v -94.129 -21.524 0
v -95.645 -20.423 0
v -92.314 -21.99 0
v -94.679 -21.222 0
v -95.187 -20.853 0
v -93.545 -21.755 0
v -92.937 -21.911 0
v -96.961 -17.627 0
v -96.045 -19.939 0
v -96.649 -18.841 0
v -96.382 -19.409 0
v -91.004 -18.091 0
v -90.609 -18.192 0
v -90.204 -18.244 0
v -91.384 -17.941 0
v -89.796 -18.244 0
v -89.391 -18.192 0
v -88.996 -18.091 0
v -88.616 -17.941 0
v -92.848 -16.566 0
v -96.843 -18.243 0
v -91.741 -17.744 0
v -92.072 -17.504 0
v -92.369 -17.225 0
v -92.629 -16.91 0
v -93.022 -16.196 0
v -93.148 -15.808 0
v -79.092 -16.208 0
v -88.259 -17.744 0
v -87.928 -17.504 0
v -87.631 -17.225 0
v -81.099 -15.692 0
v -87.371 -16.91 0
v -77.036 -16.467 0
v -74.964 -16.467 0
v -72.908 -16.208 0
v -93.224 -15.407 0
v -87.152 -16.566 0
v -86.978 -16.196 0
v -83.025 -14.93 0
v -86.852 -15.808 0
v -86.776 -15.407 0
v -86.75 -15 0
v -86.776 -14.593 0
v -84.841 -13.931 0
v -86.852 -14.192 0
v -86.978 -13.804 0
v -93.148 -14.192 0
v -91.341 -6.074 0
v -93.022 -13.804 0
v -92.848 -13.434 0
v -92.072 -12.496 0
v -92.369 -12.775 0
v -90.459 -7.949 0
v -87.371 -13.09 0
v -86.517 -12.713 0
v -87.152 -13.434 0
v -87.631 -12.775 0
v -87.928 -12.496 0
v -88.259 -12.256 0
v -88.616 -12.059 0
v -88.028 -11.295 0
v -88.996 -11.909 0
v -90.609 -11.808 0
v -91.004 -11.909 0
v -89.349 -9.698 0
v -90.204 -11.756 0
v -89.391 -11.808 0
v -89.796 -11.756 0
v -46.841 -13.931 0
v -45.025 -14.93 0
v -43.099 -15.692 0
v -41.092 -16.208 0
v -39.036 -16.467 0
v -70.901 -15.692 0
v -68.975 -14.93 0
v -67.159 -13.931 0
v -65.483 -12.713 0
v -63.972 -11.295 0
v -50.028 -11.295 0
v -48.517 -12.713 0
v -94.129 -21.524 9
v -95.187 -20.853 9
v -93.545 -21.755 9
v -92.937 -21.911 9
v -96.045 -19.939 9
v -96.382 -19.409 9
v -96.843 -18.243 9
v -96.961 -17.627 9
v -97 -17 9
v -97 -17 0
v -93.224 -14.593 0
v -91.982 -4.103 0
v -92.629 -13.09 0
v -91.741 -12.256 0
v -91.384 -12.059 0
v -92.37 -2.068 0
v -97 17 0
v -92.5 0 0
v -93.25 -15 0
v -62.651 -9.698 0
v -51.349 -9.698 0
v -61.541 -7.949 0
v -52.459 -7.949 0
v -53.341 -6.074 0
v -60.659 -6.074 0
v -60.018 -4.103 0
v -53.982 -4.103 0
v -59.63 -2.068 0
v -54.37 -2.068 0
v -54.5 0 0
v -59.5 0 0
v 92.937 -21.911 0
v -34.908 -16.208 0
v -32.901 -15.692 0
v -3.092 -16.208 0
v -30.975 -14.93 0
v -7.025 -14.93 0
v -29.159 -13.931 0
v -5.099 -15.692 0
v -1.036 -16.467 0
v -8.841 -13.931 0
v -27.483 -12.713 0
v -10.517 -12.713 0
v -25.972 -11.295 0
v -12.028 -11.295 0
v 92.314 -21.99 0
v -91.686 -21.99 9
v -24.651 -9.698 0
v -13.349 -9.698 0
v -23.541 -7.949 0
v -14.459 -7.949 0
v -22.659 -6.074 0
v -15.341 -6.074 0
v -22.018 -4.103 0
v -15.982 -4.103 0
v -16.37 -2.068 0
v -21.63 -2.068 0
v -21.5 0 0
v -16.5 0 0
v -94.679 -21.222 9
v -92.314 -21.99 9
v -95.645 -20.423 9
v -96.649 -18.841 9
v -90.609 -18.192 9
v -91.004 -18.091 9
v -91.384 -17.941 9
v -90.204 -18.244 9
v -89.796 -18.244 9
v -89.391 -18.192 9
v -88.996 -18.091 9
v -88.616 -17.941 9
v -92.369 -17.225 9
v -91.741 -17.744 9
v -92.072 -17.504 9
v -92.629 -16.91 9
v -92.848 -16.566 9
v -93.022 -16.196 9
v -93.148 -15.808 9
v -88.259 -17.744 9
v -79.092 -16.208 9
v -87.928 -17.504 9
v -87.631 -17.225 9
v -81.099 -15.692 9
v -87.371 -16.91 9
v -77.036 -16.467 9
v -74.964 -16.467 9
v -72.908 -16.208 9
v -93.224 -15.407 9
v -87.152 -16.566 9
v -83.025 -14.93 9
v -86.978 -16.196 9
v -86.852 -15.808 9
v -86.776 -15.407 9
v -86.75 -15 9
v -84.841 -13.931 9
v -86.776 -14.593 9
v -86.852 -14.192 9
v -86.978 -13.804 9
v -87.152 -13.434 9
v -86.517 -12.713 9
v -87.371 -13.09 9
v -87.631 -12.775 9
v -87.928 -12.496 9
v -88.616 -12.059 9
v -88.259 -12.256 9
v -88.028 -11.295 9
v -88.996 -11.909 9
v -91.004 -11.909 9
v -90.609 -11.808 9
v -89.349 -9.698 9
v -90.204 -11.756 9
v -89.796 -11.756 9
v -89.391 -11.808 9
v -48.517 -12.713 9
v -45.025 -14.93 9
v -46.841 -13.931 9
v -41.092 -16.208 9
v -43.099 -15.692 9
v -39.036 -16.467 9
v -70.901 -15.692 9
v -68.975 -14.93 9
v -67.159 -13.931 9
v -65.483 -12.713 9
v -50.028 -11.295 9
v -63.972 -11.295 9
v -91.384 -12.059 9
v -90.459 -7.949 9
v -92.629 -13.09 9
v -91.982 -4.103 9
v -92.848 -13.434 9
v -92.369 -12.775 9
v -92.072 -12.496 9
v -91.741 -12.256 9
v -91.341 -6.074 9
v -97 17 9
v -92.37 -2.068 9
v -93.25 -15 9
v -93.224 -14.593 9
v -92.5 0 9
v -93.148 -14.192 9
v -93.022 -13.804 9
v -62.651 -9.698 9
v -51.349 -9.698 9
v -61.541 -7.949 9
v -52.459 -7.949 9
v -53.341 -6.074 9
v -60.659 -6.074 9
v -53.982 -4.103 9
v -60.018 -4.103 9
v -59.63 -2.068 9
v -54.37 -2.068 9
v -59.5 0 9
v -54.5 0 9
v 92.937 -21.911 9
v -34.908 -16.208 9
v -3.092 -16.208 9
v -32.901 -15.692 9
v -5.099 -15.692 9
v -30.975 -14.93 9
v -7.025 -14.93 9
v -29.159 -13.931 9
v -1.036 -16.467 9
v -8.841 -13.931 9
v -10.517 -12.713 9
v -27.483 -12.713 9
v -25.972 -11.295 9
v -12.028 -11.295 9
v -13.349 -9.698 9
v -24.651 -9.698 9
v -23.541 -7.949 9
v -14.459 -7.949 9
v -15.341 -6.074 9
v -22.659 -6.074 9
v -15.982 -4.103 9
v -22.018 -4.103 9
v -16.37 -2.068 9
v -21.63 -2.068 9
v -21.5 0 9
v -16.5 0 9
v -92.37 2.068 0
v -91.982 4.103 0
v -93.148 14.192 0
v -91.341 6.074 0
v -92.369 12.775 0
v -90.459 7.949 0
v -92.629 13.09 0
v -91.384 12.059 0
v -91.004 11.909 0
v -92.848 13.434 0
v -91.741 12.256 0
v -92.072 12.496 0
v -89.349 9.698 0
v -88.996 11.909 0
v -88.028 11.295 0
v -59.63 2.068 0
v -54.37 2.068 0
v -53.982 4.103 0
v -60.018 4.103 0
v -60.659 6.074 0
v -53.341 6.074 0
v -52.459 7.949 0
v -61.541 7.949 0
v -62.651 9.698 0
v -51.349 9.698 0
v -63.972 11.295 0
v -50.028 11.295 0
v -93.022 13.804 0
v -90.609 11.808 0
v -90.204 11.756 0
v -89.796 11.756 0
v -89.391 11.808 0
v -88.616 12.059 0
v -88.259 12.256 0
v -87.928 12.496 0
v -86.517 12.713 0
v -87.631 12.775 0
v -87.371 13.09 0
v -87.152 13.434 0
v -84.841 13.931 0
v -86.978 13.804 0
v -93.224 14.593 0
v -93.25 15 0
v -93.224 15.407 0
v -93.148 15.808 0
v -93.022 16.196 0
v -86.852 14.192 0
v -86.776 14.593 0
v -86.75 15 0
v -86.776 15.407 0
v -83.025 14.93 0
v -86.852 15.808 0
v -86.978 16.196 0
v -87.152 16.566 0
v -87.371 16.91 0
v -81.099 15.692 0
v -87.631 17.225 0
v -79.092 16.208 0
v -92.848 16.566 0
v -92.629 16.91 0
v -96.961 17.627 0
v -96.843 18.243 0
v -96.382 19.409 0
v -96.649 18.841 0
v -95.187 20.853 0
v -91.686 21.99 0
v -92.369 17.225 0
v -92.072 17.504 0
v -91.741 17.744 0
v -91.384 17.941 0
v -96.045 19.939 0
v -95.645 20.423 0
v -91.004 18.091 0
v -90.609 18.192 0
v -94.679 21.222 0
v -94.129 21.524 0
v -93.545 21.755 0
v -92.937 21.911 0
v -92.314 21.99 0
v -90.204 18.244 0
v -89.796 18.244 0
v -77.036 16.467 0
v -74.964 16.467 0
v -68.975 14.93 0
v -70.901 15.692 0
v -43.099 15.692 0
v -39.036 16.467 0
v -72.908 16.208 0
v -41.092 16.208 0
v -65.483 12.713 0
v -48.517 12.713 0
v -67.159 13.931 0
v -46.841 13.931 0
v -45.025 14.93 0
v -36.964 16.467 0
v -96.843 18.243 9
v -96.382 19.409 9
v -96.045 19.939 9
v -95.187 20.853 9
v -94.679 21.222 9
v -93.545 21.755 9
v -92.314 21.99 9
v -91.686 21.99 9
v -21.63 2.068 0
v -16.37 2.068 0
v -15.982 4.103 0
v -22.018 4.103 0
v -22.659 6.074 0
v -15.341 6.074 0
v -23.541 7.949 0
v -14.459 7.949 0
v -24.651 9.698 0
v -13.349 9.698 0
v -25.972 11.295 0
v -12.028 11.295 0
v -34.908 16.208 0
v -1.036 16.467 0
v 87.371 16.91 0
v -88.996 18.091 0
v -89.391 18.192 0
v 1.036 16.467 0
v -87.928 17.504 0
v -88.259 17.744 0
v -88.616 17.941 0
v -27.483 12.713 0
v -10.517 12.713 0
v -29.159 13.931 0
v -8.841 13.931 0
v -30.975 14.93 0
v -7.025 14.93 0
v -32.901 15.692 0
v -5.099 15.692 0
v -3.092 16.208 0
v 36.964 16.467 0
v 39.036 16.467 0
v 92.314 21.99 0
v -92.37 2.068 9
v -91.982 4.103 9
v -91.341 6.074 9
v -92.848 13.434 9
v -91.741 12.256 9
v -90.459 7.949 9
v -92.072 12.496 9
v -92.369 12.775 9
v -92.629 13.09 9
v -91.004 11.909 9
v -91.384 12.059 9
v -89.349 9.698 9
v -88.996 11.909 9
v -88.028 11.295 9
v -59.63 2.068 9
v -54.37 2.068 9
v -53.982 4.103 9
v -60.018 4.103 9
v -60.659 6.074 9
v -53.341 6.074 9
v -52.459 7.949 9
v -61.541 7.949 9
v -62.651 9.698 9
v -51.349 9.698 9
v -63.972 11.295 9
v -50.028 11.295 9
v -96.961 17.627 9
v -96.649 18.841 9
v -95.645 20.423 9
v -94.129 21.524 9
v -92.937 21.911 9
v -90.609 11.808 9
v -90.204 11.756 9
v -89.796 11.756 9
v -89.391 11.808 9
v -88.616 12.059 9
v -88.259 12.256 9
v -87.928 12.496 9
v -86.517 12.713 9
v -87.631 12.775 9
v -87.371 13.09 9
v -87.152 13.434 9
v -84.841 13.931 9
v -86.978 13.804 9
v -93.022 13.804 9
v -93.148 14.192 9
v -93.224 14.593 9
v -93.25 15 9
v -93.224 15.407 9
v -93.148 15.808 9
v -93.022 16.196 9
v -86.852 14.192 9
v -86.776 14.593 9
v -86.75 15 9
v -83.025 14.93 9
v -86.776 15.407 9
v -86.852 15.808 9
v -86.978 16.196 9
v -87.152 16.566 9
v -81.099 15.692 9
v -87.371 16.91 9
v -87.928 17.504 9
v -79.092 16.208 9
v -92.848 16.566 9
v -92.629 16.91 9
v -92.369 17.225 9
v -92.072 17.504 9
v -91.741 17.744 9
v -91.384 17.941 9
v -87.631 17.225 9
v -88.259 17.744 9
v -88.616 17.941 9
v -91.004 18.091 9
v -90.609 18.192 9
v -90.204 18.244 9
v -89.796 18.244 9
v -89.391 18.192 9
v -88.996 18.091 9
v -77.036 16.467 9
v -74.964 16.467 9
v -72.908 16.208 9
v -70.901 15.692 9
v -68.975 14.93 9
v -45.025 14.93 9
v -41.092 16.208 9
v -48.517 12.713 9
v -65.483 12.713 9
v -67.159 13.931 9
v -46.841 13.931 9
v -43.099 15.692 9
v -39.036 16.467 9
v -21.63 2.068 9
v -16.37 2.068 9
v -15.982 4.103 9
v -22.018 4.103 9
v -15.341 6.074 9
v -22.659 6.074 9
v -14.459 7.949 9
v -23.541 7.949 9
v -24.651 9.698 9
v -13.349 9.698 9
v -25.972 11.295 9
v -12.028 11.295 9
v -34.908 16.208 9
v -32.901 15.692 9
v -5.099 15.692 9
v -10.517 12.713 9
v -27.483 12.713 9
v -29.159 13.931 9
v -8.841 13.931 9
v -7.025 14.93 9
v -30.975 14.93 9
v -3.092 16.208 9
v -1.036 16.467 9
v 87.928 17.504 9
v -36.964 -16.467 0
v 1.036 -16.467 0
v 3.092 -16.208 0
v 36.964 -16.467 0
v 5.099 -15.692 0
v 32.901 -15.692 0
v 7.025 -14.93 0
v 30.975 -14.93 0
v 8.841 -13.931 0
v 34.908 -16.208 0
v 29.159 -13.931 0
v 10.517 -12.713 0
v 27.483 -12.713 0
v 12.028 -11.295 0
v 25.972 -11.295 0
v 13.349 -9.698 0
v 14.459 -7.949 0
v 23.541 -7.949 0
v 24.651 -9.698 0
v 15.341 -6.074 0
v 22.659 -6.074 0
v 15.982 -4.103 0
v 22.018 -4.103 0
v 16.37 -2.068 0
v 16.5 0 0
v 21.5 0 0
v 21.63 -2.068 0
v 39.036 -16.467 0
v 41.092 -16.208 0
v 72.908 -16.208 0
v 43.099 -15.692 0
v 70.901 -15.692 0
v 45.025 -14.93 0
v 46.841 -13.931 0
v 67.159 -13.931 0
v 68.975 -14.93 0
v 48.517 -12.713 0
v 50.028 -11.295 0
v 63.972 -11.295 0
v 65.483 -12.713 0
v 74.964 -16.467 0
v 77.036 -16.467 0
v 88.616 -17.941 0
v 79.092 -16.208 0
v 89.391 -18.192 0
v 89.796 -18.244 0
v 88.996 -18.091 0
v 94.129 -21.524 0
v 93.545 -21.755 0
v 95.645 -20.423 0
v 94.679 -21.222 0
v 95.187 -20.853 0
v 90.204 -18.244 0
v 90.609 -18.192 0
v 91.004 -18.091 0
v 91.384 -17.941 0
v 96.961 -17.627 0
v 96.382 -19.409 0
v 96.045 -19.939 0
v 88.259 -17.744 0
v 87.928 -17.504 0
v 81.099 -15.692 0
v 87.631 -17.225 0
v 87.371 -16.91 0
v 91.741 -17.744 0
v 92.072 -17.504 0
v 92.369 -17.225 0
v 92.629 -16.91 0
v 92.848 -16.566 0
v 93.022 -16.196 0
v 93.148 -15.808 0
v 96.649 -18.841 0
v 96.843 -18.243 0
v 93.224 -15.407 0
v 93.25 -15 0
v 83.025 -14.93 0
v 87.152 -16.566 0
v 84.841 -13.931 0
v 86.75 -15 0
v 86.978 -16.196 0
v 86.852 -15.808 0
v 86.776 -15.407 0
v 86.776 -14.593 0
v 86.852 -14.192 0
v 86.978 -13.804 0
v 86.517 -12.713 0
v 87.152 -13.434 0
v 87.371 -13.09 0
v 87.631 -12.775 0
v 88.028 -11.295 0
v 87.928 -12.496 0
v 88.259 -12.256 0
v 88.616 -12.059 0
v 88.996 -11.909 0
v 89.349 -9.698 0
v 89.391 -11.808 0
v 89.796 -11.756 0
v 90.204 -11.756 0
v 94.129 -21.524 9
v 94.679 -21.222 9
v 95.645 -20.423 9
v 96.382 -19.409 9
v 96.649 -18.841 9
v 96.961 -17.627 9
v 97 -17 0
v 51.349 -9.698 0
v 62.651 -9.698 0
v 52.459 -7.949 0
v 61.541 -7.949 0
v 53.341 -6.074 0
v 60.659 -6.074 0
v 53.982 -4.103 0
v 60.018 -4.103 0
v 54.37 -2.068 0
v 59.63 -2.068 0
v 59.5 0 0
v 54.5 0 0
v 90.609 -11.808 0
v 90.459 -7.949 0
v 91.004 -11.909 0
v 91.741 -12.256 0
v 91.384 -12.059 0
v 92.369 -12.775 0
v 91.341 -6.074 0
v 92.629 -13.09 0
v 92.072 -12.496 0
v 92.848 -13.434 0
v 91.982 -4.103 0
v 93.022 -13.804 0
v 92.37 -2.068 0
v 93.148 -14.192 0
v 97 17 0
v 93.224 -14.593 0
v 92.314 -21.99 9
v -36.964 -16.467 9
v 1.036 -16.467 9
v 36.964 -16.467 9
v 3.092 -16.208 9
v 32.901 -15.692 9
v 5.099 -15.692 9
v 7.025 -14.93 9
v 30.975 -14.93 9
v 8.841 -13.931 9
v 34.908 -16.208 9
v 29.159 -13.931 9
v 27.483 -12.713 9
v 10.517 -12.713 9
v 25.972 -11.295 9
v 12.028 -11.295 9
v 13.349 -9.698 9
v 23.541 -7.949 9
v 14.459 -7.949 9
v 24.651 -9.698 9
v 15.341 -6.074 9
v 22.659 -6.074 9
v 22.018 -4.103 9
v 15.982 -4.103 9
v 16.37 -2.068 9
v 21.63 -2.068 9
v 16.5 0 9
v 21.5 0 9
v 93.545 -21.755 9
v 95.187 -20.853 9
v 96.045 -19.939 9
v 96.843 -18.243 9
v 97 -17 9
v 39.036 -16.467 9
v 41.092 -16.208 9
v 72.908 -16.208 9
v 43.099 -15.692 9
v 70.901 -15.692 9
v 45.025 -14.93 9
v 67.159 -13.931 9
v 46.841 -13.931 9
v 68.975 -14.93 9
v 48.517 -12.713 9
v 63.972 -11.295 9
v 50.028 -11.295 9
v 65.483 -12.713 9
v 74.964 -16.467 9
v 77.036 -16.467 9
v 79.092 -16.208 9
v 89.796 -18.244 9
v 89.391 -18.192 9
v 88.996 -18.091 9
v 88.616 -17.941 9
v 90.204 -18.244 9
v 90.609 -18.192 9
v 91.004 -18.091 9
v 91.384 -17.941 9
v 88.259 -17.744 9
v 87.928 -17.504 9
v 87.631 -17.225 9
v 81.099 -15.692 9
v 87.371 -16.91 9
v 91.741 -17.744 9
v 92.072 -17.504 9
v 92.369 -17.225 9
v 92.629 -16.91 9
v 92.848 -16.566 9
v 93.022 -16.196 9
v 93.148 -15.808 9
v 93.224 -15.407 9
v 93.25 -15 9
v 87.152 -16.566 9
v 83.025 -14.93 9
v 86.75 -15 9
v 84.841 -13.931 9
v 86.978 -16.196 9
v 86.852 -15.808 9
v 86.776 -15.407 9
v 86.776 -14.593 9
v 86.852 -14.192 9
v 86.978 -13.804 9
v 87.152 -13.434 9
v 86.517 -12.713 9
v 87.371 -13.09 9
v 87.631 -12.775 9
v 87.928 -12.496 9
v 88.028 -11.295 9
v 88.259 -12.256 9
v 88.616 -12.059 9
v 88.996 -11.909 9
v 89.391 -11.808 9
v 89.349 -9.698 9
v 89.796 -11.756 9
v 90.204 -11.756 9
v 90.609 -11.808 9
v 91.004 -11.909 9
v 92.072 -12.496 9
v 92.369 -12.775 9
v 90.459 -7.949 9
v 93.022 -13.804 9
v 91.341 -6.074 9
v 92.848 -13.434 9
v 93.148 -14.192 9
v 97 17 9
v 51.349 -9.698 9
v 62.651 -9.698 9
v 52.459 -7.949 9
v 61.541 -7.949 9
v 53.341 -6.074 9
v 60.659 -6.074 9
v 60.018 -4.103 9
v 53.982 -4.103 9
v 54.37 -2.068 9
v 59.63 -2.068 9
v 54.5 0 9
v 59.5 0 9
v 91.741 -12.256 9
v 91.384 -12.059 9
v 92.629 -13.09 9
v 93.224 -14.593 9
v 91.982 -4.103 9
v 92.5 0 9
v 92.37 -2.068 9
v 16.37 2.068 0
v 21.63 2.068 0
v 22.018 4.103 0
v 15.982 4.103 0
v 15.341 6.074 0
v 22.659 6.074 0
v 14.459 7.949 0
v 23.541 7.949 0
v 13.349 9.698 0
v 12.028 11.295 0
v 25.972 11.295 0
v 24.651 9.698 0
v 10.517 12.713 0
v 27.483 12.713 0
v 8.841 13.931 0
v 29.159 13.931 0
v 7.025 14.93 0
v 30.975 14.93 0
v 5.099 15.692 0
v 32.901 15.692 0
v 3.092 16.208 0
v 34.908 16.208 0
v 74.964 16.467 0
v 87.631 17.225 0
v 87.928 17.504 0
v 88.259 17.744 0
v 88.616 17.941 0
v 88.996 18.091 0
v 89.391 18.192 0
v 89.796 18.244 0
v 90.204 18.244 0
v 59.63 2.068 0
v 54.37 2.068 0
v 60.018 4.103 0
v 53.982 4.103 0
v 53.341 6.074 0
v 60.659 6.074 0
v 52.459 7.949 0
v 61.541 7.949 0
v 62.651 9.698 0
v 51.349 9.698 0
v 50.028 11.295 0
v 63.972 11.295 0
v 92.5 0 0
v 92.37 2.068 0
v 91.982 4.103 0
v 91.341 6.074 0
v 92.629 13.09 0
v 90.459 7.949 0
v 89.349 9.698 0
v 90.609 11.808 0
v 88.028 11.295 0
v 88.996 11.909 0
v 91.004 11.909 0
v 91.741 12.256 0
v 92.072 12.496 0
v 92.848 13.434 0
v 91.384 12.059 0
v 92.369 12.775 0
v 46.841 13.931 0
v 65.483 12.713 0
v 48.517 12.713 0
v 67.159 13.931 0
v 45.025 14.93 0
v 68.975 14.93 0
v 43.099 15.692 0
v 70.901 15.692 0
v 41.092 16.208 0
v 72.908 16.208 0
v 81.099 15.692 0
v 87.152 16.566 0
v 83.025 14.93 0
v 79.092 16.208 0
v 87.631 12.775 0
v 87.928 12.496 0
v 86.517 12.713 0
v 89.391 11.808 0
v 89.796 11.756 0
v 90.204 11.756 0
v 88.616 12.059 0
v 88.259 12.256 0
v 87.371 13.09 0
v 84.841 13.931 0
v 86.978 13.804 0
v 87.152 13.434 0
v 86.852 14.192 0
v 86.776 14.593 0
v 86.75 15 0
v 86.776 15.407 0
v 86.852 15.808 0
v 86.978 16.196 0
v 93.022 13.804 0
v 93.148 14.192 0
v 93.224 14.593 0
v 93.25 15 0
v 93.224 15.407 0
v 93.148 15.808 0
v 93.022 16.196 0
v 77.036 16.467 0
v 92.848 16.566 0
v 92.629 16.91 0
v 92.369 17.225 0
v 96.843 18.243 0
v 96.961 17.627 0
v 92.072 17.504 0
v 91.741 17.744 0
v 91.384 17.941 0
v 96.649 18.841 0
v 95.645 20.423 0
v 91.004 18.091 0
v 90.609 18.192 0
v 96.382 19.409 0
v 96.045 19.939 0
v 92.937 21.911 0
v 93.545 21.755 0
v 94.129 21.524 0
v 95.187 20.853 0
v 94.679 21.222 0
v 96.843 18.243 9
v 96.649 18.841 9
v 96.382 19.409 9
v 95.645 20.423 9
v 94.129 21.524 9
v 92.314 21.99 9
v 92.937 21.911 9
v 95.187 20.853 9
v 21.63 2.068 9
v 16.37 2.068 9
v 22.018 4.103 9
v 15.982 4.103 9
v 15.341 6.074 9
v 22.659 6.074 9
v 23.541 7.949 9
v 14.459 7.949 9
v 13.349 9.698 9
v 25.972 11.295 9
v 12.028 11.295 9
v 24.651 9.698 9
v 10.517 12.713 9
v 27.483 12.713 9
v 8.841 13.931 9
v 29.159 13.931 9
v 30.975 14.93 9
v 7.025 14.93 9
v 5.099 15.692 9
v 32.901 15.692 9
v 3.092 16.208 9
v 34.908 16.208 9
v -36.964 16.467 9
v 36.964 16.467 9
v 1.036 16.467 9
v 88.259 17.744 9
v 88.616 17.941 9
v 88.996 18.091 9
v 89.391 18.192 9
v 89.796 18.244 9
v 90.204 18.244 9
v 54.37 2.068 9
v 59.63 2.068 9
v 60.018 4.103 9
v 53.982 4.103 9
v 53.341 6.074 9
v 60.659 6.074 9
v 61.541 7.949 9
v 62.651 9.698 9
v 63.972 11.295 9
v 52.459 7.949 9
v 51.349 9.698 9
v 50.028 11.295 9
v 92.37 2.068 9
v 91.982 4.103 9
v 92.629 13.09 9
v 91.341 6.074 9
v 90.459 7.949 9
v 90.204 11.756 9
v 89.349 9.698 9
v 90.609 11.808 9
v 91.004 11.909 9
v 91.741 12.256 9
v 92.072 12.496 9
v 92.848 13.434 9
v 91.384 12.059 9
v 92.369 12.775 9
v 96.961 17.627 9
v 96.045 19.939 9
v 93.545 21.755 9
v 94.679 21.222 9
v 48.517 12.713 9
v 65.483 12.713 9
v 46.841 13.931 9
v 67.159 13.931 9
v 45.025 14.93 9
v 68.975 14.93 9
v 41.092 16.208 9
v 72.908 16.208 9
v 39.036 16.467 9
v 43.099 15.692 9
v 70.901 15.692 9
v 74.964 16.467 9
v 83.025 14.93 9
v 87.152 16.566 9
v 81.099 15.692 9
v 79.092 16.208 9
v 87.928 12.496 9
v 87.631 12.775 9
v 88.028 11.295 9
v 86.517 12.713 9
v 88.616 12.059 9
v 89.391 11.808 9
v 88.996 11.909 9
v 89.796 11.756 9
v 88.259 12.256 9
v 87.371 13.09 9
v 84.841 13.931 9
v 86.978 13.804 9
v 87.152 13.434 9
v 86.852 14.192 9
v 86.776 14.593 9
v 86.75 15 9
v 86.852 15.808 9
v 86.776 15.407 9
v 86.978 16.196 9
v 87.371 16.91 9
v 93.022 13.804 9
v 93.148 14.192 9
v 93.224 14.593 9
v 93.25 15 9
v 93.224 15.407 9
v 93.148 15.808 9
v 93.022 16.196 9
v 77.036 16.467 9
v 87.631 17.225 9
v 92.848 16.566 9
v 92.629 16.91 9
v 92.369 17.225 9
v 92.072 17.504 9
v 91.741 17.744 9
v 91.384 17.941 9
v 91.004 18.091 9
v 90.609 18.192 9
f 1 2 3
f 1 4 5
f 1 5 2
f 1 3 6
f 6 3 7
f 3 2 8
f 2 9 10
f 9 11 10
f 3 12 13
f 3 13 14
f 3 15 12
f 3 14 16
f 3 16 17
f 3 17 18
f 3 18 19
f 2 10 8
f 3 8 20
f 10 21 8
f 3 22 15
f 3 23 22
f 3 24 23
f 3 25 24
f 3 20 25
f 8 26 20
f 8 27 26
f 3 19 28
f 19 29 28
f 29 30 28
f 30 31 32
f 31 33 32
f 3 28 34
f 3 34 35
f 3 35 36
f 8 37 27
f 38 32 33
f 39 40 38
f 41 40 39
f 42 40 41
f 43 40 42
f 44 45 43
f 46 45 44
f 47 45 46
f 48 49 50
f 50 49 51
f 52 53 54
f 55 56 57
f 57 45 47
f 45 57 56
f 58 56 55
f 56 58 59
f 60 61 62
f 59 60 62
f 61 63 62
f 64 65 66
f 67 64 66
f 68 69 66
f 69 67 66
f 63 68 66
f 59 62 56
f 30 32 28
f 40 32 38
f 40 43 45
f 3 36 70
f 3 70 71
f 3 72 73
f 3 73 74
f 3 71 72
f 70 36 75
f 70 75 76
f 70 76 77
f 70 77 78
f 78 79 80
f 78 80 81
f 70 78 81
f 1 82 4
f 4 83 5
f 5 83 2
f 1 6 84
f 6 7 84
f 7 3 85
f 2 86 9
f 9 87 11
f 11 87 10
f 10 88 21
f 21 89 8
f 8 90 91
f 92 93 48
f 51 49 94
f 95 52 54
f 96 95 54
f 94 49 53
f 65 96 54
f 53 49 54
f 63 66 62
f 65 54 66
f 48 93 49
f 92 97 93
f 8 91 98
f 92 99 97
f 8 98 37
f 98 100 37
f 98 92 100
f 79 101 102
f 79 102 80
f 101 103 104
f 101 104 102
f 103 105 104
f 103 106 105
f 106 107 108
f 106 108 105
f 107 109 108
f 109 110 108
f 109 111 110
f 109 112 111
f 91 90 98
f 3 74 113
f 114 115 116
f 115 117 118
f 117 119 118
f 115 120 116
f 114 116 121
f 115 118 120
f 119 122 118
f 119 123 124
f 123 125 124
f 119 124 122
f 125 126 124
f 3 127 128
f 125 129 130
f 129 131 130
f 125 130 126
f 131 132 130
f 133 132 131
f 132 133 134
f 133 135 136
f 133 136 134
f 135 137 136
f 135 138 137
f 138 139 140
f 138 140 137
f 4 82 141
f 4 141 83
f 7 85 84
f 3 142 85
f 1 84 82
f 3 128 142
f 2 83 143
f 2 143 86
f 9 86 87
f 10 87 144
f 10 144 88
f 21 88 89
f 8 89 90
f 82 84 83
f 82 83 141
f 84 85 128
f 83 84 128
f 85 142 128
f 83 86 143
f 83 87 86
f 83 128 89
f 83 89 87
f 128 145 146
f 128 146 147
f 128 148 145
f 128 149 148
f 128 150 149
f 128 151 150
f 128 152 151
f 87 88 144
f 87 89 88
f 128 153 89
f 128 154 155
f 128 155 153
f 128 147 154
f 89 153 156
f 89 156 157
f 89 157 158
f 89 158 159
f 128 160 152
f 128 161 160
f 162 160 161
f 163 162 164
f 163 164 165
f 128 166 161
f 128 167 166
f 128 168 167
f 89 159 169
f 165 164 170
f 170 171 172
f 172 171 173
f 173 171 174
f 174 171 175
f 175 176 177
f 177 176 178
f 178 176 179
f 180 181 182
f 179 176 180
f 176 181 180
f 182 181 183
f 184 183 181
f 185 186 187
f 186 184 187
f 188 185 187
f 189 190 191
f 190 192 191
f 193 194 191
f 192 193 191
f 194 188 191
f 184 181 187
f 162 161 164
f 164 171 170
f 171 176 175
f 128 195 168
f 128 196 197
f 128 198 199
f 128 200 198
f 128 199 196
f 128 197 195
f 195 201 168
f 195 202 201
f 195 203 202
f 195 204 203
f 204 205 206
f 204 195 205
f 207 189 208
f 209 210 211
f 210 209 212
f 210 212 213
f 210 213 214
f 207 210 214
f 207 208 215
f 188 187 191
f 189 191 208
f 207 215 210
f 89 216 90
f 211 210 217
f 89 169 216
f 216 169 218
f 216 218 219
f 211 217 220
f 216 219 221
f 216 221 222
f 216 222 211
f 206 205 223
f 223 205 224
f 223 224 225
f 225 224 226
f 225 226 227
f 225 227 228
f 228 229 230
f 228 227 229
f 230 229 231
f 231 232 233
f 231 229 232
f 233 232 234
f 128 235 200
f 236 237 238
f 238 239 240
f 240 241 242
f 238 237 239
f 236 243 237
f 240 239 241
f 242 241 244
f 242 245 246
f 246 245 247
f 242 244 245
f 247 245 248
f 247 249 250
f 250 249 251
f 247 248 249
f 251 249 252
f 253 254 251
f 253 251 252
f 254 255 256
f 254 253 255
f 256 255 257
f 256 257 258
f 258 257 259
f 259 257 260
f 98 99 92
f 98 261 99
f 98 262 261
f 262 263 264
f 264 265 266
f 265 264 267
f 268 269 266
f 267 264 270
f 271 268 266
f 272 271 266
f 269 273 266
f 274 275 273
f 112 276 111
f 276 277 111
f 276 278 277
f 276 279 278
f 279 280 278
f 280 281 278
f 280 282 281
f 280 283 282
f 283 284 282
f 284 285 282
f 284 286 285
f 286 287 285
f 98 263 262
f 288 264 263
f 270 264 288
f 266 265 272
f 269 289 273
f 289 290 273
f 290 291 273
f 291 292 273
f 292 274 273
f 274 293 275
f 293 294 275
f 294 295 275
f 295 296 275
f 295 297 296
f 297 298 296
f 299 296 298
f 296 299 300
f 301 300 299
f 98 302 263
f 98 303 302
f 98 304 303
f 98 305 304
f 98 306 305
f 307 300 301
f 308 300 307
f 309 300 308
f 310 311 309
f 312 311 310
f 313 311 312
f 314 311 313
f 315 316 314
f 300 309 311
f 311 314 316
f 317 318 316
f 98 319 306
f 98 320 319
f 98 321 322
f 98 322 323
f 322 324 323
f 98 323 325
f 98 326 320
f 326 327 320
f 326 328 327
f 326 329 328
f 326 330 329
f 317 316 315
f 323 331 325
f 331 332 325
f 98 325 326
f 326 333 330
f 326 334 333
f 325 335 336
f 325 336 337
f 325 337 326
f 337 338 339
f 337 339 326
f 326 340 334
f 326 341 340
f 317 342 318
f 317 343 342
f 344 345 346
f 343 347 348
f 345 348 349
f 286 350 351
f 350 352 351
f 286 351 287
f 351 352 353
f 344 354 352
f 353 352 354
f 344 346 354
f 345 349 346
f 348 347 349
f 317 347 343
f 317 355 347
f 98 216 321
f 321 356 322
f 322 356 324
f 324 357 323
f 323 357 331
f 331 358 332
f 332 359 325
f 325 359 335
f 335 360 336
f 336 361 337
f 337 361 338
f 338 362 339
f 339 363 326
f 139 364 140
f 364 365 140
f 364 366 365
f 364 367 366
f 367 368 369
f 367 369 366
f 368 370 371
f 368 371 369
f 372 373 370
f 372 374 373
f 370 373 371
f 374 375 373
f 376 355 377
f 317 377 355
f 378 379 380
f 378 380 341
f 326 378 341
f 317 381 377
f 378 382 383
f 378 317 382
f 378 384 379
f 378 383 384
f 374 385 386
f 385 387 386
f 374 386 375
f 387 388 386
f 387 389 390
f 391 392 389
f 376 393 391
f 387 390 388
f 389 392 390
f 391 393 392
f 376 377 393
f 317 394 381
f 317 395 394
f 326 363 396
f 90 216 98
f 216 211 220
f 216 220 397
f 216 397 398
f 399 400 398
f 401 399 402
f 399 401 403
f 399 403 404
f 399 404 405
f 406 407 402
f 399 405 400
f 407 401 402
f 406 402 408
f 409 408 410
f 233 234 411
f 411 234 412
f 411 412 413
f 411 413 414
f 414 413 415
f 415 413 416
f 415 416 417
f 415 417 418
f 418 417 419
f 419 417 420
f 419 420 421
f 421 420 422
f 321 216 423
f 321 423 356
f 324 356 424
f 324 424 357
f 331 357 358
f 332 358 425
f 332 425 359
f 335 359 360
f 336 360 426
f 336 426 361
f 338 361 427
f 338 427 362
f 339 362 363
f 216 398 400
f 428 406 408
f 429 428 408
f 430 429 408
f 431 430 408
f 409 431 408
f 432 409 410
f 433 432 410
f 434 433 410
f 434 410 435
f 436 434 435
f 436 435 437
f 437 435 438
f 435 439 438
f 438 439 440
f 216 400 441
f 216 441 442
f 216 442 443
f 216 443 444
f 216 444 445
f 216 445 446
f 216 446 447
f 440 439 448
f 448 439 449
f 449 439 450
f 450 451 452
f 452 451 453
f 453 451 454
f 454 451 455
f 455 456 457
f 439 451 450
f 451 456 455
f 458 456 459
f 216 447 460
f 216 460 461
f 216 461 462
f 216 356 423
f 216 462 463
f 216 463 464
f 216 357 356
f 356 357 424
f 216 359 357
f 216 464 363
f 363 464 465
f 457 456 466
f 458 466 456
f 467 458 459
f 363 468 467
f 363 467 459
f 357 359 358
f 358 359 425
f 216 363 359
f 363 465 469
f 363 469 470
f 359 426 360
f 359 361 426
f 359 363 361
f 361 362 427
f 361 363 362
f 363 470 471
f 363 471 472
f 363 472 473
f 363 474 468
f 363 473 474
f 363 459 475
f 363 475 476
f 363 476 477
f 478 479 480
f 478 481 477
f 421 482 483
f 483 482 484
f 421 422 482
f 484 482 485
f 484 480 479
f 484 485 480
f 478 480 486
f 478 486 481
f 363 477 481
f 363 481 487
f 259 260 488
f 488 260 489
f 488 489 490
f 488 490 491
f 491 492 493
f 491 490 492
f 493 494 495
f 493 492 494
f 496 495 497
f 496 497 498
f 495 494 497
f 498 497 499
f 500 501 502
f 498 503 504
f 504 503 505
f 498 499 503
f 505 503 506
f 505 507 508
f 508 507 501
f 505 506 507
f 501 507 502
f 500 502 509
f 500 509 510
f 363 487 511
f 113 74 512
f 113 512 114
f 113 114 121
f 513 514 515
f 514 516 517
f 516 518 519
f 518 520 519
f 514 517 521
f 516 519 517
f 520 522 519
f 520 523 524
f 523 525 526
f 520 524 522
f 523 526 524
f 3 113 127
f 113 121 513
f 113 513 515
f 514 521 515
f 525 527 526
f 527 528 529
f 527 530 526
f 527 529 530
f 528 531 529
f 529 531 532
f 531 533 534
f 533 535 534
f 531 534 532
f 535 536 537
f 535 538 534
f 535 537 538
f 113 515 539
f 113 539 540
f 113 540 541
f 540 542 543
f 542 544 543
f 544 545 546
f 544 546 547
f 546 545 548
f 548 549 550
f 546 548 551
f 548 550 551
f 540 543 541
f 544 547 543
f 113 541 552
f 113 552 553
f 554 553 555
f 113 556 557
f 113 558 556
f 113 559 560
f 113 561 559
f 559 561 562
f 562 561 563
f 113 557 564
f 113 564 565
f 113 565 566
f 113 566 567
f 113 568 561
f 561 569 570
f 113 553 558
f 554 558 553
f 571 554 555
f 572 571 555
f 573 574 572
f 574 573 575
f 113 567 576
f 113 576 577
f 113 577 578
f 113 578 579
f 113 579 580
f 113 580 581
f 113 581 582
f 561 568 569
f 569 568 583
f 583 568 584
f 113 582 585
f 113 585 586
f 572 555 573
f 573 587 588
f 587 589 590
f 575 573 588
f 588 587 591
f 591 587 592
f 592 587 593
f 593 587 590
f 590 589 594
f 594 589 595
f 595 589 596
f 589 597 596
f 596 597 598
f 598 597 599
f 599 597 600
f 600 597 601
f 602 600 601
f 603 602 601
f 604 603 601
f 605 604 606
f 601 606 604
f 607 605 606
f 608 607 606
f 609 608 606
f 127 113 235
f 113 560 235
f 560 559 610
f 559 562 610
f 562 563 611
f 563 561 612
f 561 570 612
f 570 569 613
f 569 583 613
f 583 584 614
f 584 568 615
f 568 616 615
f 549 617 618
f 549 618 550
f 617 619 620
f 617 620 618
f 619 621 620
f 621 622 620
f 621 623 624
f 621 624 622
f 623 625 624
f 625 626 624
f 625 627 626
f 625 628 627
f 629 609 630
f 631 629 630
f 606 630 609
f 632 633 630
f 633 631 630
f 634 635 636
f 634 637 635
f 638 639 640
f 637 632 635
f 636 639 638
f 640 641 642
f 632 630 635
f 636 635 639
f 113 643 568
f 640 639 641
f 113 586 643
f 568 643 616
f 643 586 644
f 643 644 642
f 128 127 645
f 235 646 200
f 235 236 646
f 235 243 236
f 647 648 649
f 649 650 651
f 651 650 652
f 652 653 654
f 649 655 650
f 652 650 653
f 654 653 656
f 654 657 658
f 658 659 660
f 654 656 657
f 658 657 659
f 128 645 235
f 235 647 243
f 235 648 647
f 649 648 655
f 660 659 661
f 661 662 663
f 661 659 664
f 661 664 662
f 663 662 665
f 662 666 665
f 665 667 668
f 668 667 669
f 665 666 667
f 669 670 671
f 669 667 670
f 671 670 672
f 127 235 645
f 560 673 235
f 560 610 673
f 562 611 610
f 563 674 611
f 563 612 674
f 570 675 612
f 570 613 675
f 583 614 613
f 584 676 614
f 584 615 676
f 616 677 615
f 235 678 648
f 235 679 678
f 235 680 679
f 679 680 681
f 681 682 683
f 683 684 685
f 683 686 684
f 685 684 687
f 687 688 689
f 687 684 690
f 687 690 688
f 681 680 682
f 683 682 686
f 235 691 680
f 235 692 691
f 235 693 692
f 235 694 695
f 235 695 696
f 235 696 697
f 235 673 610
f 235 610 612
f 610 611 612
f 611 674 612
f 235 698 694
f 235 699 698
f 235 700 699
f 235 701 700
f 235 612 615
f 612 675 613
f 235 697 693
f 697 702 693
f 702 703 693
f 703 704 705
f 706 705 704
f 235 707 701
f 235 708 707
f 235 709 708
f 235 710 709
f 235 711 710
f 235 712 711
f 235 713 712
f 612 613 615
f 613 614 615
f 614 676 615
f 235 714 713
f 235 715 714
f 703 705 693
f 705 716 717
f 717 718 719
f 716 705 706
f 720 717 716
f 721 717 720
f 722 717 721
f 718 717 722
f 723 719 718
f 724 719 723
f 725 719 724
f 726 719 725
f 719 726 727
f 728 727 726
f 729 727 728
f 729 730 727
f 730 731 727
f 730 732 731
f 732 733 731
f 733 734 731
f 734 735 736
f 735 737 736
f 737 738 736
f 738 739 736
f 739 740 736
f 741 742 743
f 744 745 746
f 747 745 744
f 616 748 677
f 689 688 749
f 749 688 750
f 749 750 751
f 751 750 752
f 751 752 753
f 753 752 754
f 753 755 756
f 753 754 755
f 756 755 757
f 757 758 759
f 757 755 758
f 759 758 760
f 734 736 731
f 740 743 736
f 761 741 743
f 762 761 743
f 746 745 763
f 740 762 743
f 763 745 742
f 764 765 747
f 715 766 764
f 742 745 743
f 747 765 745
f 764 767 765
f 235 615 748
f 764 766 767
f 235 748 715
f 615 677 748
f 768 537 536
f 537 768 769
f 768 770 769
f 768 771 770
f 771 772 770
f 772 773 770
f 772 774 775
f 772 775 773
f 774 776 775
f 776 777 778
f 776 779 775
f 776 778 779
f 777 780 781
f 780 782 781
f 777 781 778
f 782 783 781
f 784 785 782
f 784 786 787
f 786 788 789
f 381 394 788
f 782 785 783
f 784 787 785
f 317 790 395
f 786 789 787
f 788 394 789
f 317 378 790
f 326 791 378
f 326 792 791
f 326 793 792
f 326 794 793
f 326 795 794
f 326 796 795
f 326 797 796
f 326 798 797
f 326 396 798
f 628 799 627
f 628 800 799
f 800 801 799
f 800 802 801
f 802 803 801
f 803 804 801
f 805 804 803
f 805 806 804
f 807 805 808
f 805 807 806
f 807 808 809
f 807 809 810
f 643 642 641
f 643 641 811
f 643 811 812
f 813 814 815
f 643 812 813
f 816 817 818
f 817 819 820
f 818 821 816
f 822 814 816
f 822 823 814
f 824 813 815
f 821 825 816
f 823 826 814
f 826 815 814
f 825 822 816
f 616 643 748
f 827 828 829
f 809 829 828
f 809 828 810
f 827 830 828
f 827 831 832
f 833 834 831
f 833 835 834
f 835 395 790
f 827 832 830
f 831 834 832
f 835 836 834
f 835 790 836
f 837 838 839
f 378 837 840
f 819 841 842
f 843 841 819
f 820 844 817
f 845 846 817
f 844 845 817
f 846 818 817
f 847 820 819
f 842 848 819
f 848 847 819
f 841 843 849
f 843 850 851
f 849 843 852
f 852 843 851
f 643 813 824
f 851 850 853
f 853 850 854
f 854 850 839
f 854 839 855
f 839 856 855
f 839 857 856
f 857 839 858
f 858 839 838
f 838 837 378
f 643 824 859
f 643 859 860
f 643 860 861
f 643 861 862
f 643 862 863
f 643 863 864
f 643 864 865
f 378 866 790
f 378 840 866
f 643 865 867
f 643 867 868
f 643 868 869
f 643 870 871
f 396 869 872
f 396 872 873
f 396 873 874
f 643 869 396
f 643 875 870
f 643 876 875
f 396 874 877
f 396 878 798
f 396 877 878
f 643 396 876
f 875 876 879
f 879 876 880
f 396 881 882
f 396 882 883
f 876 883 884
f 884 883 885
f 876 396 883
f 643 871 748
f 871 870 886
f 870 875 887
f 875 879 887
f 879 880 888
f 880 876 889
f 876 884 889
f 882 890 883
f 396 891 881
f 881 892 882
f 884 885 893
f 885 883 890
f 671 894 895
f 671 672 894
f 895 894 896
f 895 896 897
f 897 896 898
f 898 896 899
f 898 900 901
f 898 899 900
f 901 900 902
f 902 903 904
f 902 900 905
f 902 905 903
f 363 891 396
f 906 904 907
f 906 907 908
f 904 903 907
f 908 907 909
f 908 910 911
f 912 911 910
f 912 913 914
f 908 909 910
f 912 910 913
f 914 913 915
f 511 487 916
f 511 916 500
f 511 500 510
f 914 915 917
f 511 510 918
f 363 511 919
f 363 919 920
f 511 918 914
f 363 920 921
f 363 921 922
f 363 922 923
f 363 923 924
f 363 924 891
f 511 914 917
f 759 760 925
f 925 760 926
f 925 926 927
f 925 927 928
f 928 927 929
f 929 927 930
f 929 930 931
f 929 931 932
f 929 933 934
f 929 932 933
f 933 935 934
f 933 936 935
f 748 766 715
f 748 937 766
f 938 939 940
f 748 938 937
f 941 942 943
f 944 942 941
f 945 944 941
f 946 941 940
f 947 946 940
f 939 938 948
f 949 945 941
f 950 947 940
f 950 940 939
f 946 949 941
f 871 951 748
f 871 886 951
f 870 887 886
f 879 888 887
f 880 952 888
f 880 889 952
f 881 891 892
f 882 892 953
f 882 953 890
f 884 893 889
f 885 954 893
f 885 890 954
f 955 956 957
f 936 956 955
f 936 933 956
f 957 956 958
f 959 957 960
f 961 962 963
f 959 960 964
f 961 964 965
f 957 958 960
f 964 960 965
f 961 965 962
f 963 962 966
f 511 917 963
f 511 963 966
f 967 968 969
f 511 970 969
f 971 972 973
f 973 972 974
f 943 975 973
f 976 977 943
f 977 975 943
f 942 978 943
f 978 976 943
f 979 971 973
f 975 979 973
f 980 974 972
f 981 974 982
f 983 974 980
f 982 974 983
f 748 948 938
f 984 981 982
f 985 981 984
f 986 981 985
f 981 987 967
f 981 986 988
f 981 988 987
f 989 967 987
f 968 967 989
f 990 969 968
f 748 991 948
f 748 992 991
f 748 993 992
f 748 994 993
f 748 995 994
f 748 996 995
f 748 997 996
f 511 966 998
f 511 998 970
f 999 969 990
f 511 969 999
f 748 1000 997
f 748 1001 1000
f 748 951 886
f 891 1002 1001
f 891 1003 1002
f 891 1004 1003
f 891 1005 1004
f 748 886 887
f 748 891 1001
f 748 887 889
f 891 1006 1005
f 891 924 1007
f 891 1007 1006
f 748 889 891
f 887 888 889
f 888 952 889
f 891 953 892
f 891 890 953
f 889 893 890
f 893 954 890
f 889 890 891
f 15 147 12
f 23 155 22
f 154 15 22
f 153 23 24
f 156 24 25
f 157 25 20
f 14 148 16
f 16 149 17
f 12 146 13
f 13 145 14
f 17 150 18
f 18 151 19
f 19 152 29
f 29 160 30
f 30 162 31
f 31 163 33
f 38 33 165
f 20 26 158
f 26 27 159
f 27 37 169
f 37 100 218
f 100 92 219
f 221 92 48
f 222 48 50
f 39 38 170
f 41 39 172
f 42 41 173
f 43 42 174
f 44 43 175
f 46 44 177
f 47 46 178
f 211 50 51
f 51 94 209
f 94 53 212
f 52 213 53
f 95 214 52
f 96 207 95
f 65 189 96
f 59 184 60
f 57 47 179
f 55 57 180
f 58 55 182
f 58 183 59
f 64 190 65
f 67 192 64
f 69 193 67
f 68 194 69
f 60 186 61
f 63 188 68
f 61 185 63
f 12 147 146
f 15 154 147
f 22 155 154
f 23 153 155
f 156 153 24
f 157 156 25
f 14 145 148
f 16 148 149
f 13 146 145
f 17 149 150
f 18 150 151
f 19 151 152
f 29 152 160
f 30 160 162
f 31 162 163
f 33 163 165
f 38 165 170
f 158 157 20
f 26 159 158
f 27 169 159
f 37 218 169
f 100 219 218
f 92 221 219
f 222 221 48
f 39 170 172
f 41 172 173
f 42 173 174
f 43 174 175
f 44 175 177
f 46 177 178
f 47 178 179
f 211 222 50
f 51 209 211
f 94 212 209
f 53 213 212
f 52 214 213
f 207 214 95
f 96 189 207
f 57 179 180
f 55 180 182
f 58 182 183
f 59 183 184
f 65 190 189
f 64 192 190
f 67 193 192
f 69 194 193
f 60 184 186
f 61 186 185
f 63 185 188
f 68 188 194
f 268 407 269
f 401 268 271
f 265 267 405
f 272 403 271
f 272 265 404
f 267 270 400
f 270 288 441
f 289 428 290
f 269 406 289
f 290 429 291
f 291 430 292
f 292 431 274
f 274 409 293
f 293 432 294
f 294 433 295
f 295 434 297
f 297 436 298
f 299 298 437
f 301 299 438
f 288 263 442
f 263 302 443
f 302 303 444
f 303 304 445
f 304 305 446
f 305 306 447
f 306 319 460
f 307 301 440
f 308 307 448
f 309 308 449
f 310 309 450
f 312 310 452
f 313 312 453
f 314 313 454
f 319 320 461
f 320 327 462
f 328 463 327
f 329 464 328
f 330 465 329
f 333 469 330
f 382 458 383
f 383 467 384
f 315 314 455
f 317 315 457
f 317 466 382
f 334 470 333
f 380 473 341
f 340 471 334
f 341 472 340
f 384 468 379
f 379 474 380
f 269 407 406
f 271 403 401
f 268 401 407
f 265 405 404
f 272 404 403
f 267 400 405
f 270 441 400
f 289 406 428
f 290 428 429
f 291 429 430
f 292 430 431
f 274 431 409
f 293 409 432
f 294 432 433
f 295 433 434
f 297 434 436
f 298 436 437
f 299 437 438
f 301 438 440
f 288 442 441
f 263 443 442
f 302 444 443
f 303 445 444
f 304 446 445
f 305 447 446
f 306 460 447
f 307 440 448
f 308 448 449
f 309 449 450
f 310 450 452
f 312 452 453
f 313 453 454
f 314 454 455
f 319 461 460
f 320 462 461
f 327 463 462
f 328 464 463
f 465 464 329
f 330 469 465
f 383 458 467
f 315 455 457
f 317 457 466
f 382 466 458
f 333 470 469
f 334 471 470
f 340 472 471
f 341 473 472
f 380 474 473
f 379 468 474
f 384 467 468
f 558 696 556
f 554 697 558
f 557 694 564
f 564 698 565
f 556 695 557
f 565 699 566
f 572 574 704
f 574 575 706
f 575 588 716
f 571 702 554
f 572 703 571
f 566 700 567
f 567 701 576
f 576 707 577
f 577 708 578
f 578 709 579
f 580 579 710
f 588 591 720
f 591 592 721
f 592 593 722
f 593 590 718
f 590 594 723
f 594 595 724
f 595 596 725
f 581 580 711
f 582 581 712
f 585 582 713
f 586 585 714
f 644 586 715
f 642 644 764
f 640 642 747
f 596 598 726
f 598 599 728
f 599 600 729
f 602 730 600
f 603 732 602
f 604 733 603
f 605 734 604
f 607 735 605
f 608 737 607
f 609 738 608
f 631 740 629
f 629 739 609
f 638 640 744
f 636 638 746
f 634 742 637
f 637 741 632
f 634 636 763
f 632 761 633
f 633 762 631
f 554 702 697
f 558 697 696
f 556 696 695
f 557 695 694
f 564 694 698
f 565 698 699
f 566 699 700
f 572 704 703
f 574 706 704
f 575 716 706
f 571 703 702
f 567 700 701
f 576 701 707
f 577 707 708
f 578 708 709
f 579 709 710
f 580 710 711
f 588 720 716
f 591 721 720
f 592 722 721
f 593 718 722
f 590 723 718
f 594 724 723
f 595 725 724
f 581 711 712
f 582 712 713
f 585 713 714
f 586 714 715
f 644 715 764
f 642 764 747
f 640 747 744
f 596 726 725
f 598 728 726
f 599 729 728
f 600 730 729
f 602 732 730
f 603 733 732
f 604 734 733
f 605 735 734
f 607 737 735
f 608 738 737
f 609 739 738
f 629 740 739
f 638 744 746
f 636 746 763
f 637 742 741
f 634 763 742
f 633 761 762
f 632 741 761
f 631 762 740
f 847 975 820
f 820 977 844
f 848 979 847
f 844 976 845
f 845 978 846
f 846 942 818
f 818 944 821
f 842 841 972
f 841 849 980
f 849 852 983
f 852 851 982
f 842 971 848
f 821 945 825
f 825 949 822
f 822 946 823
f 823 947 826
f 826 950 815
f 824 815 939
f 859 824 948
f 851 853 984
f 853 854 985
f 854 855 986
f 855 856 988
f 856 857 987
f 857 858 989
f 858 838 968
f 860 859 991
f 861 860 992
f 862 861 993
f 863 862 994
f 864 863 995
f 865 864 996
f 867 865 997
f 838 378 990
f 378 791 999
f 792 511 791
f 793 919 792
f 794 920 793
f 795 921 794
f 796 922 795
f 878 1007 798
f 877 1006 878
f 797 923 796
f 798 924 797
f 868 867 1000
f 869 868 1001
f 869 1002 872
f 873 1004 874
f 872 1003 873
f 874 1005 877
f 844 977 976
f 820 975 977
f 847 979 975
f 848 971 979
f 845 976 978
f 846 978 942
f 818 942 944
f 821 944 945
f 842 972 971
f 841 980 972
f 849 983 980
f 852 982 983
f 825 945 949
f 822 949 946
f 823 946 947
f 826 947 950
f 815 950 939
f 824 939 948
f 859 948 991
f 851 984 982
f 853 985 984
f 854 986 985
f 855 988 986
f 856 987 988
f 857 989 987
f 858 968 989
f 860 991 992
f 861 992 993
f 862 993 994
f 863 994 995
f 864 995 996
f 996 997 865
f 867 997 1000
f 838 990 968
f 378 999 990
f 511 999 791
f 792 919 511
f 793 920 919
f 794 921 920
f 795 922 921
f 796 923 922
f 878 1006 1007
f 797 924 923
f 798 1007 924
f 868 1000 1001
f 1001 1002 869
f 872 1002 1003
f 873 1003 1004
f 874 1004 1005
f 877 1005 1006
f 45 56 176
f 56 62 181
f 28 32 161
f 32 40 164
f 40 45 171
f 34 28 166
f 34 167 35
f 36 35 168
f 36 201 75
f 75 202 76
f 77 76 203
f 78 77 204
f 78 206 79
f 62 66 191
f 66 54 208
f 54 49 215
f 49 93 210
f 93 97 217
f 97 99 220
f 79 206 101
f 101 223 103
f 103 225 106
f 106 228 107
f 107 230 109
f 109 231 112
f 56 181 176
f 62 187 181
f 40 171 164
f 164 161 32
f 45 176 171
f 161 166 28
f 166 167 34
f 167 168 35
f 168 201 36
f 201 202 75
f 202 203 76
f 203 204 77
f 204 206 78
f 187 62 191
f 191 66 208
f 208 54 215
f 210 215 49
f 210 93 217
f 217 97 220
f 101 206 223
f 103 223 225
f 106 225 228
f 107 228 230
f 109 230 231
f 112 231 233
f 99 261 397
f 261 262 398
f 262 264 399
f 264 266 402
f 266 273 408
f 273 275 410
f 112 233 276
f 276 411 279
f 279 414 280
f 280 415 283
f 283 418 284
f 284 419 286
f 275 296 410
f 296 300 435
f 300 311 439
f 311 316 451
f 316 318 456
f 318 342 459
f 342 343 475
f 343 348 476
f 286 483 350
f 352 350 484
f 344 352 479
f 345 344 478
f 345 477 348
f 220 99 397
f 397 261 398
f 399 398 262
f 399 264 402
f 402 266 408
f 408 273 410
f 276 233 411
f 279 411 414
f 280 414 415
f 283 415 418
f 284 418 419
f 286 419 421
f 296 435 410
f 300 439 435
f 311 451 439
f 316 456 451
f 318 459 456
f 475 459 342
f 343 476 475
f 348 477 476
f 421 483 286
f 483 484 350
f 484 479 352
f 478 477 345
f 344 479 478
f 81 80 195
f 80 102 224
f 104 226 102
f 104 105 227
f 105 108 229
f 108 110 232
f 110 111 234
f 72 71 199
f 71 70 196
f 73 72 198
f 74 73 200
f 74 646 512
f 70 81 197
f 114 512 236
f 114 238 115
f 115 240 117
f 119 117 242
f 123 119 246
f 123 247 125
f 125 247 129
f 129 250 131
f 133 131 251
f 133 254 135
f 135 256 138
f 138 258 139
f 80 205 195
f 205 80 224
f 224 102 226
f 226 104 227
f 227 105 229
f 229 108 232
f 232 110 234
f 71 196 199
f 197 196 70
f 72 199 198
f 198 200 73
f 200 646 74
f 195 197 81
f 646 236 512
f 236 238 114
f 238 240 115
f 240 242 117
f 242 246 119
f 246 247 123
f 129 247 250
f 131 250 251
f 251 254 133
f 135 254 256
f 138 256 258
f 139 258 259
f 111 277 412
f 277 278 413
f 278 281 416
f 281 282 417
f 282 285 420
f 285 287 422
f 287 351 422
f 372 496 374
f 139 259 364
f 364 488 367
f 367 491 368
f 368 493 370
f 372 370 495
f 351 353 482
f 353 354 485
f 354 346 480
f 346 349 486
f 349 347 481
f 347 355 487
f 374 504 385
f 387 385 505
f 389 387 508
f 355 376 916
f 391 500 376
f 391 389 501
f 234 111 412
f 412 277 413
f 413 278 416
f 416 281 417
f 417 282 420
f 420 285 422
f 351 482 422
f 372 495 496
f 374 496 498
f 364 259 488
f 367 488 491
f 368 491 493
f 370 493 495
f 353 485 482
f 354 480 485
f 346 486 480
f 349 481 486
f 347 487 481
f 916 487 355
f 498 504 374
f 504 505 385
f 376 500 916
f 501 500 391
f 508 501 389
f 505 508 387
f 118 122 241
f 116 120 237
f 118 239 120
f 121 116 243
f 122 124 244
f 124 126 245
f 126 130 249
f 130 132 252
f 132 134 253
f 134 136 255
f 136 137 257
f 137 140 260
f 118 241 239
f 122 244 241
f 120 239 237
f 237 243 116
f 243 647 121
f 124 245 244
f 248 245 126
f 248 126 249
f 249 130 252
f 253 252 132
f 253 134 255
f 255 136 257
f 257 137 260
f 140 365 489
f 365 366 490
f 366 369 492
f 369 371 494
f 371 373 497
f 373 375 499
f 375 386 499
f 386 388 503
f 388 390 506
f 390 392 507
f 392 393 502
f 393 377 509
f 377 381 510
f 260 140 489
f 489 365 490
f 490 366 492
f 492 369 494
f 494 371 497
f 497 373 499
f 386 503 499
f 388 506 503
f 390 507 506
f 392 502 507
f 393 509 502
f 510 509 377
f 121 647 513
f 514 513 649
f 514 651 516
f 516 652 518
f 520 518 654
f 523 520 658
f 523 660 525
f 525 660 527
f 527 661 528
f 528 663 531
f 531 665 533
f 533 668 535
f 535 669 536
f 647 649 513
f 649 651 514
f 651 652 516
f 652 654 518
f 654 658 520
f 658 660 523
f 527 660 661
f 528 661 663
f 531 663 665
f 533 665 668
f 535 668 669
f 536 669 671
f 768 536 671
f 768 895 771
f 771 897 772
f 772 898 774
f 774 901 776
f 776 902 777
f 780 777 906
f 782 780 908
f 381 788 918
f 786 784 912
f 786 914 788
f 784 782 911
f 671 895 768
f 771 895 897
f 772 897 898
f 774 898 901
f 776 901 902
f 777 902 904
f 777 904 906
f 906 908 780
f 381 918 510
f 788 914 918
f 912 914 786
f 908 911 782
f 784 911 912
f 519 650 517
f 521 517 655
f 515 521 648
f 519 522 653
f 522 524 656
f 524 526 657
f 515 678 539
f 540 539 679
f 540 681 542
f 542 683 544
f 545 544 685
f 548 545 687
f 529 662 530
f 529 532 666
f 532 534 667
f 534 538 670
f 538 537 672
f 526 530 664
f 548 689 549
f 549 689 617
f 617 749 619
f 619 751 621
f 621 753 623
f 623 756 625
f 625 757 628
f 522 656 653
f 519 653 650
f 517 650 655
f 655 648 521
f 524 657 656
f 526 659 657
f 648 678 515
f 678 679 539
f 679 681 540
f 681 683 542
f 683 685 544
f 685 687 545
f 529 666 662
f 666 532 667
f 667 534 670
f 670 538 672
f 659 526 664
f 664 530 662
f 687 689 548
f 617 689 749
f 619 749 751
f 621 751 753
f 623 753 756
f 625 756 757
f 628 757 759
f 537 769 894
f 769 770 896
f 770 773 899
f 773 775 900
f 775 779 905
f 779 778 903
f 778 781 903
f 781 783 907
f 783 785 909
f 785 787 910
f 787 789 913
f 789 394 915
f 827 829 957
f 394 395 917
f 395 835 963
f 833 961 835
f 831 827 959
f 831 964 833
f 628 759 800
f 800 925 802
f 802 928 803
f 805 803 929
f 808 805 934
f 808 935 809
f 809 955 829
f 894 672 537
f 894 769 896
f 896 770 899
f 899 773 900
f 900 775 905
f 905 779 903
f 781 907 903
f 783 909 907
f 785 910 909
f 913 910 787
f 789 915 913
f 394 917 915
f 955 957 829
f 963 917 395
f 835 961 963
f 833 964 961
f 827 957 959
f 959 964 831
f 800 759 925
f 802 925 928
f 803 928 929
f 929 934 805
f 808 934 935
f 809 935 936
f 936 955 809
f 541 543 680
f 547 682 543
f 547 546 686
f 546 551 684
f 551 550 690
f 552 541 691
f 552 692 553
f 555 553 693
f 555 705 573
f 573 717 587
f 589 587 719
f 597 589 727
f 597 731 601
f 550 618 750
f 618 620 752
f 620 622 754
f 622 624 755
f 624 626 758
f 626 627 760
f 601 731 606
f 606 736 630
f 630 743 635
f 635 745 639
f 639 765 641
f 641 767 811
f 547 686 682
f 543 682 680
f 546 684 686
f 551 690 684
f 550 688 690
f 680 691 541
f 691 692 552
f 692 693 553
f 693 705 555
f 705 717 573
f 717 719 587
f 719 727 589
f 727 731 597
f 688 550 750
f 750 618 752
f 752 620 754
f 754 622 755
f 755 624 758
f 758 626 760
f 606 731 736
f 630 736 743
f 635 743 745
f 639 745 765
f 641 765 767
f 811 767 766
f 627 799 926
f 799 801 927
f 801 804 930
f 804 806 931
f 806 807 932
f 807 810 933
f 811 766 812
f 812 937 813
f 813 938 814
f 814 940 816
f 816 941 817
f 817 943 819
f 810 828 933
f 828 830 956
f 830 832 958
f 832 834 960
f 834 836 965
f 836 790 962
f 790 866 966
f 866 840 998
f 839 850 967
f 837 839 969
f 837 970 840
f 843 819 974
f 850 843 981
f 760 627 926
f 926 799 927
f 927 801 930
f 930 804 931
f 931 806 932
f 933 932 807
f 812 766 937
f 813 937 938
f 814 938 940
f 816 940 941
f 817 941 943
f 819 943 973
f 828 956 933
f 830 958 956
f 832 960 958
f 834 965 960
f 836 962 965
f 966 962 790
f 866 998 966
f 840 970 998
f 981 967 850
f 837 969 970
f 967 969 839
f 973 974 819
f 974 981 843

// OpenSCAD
$fn = 50;

difference() {
	union() {
		hull() {
			translate(v = [-92.0, 17.0, 0]) {
				cylinder(h = 9, r = 5);
			}
			translate(v = [92.0, 17.0, 0]) {
				cylinder(h = 9, r = 5);
			}
			translate(v = [-92.0, -17.0, 0]) {
				cylinder(h = 9, r = 5);
			}
			translate(v = [92.0, -17.0, 0]) {
				cylinder(h = 9, r = 5);
			}
		}
	}
	union() {
		translate(v = [-90.0, -15.0, -100.0]) {
			cylinder(h = 200, r = 3.25);
		}
		translate(v = [-90.0, 15.0, -100.0]) {
			cylinder(h = 200, r = 3.25);
		}
		translate(v = [90.0, -15.0, -100.0]) {
			cylinder(h = 200, r = 3.25);
		}
		translate(v = [90.0, 15.0, -100.0]) {
			cylinder(h = 200, r = 3.25);
		}
		translate(v = [-90.0, -15.0, -100.0]) {
			cylinder(h = 200, r = 1.8);
		}
		translate(v = [-90.0, 15.0, -100.0]) {
			cylinder(h = 200, r = 1.8);
		}
		translate(v = [90.0, -15.0, -100.0]) {
			cylinder(h = 200, r = 1.8);
		}
		translate(v = [90.0, 15.0, -100.0]) {
			cylinder(h = 200, r = 1.8);
		}
		translate(v = [-76.0, 0, 0.0]) {
			cylinder(h = 9, r = 16.5);
		}
		translate(v = [-38.0, 0, 0.0]) {
			cylinder(h = 9, r = 16.5);
		}
		cylinder(h = 9, r = 16.5);
		translate(v = [38.0, 0, 0.0]) {
			cylinder(h = 9, r = 16.5);
		}
		translate(v = [76.0, 0, 0.0]) {
			cylinder(h = 9, r = 16.5);
		}
	}
}
